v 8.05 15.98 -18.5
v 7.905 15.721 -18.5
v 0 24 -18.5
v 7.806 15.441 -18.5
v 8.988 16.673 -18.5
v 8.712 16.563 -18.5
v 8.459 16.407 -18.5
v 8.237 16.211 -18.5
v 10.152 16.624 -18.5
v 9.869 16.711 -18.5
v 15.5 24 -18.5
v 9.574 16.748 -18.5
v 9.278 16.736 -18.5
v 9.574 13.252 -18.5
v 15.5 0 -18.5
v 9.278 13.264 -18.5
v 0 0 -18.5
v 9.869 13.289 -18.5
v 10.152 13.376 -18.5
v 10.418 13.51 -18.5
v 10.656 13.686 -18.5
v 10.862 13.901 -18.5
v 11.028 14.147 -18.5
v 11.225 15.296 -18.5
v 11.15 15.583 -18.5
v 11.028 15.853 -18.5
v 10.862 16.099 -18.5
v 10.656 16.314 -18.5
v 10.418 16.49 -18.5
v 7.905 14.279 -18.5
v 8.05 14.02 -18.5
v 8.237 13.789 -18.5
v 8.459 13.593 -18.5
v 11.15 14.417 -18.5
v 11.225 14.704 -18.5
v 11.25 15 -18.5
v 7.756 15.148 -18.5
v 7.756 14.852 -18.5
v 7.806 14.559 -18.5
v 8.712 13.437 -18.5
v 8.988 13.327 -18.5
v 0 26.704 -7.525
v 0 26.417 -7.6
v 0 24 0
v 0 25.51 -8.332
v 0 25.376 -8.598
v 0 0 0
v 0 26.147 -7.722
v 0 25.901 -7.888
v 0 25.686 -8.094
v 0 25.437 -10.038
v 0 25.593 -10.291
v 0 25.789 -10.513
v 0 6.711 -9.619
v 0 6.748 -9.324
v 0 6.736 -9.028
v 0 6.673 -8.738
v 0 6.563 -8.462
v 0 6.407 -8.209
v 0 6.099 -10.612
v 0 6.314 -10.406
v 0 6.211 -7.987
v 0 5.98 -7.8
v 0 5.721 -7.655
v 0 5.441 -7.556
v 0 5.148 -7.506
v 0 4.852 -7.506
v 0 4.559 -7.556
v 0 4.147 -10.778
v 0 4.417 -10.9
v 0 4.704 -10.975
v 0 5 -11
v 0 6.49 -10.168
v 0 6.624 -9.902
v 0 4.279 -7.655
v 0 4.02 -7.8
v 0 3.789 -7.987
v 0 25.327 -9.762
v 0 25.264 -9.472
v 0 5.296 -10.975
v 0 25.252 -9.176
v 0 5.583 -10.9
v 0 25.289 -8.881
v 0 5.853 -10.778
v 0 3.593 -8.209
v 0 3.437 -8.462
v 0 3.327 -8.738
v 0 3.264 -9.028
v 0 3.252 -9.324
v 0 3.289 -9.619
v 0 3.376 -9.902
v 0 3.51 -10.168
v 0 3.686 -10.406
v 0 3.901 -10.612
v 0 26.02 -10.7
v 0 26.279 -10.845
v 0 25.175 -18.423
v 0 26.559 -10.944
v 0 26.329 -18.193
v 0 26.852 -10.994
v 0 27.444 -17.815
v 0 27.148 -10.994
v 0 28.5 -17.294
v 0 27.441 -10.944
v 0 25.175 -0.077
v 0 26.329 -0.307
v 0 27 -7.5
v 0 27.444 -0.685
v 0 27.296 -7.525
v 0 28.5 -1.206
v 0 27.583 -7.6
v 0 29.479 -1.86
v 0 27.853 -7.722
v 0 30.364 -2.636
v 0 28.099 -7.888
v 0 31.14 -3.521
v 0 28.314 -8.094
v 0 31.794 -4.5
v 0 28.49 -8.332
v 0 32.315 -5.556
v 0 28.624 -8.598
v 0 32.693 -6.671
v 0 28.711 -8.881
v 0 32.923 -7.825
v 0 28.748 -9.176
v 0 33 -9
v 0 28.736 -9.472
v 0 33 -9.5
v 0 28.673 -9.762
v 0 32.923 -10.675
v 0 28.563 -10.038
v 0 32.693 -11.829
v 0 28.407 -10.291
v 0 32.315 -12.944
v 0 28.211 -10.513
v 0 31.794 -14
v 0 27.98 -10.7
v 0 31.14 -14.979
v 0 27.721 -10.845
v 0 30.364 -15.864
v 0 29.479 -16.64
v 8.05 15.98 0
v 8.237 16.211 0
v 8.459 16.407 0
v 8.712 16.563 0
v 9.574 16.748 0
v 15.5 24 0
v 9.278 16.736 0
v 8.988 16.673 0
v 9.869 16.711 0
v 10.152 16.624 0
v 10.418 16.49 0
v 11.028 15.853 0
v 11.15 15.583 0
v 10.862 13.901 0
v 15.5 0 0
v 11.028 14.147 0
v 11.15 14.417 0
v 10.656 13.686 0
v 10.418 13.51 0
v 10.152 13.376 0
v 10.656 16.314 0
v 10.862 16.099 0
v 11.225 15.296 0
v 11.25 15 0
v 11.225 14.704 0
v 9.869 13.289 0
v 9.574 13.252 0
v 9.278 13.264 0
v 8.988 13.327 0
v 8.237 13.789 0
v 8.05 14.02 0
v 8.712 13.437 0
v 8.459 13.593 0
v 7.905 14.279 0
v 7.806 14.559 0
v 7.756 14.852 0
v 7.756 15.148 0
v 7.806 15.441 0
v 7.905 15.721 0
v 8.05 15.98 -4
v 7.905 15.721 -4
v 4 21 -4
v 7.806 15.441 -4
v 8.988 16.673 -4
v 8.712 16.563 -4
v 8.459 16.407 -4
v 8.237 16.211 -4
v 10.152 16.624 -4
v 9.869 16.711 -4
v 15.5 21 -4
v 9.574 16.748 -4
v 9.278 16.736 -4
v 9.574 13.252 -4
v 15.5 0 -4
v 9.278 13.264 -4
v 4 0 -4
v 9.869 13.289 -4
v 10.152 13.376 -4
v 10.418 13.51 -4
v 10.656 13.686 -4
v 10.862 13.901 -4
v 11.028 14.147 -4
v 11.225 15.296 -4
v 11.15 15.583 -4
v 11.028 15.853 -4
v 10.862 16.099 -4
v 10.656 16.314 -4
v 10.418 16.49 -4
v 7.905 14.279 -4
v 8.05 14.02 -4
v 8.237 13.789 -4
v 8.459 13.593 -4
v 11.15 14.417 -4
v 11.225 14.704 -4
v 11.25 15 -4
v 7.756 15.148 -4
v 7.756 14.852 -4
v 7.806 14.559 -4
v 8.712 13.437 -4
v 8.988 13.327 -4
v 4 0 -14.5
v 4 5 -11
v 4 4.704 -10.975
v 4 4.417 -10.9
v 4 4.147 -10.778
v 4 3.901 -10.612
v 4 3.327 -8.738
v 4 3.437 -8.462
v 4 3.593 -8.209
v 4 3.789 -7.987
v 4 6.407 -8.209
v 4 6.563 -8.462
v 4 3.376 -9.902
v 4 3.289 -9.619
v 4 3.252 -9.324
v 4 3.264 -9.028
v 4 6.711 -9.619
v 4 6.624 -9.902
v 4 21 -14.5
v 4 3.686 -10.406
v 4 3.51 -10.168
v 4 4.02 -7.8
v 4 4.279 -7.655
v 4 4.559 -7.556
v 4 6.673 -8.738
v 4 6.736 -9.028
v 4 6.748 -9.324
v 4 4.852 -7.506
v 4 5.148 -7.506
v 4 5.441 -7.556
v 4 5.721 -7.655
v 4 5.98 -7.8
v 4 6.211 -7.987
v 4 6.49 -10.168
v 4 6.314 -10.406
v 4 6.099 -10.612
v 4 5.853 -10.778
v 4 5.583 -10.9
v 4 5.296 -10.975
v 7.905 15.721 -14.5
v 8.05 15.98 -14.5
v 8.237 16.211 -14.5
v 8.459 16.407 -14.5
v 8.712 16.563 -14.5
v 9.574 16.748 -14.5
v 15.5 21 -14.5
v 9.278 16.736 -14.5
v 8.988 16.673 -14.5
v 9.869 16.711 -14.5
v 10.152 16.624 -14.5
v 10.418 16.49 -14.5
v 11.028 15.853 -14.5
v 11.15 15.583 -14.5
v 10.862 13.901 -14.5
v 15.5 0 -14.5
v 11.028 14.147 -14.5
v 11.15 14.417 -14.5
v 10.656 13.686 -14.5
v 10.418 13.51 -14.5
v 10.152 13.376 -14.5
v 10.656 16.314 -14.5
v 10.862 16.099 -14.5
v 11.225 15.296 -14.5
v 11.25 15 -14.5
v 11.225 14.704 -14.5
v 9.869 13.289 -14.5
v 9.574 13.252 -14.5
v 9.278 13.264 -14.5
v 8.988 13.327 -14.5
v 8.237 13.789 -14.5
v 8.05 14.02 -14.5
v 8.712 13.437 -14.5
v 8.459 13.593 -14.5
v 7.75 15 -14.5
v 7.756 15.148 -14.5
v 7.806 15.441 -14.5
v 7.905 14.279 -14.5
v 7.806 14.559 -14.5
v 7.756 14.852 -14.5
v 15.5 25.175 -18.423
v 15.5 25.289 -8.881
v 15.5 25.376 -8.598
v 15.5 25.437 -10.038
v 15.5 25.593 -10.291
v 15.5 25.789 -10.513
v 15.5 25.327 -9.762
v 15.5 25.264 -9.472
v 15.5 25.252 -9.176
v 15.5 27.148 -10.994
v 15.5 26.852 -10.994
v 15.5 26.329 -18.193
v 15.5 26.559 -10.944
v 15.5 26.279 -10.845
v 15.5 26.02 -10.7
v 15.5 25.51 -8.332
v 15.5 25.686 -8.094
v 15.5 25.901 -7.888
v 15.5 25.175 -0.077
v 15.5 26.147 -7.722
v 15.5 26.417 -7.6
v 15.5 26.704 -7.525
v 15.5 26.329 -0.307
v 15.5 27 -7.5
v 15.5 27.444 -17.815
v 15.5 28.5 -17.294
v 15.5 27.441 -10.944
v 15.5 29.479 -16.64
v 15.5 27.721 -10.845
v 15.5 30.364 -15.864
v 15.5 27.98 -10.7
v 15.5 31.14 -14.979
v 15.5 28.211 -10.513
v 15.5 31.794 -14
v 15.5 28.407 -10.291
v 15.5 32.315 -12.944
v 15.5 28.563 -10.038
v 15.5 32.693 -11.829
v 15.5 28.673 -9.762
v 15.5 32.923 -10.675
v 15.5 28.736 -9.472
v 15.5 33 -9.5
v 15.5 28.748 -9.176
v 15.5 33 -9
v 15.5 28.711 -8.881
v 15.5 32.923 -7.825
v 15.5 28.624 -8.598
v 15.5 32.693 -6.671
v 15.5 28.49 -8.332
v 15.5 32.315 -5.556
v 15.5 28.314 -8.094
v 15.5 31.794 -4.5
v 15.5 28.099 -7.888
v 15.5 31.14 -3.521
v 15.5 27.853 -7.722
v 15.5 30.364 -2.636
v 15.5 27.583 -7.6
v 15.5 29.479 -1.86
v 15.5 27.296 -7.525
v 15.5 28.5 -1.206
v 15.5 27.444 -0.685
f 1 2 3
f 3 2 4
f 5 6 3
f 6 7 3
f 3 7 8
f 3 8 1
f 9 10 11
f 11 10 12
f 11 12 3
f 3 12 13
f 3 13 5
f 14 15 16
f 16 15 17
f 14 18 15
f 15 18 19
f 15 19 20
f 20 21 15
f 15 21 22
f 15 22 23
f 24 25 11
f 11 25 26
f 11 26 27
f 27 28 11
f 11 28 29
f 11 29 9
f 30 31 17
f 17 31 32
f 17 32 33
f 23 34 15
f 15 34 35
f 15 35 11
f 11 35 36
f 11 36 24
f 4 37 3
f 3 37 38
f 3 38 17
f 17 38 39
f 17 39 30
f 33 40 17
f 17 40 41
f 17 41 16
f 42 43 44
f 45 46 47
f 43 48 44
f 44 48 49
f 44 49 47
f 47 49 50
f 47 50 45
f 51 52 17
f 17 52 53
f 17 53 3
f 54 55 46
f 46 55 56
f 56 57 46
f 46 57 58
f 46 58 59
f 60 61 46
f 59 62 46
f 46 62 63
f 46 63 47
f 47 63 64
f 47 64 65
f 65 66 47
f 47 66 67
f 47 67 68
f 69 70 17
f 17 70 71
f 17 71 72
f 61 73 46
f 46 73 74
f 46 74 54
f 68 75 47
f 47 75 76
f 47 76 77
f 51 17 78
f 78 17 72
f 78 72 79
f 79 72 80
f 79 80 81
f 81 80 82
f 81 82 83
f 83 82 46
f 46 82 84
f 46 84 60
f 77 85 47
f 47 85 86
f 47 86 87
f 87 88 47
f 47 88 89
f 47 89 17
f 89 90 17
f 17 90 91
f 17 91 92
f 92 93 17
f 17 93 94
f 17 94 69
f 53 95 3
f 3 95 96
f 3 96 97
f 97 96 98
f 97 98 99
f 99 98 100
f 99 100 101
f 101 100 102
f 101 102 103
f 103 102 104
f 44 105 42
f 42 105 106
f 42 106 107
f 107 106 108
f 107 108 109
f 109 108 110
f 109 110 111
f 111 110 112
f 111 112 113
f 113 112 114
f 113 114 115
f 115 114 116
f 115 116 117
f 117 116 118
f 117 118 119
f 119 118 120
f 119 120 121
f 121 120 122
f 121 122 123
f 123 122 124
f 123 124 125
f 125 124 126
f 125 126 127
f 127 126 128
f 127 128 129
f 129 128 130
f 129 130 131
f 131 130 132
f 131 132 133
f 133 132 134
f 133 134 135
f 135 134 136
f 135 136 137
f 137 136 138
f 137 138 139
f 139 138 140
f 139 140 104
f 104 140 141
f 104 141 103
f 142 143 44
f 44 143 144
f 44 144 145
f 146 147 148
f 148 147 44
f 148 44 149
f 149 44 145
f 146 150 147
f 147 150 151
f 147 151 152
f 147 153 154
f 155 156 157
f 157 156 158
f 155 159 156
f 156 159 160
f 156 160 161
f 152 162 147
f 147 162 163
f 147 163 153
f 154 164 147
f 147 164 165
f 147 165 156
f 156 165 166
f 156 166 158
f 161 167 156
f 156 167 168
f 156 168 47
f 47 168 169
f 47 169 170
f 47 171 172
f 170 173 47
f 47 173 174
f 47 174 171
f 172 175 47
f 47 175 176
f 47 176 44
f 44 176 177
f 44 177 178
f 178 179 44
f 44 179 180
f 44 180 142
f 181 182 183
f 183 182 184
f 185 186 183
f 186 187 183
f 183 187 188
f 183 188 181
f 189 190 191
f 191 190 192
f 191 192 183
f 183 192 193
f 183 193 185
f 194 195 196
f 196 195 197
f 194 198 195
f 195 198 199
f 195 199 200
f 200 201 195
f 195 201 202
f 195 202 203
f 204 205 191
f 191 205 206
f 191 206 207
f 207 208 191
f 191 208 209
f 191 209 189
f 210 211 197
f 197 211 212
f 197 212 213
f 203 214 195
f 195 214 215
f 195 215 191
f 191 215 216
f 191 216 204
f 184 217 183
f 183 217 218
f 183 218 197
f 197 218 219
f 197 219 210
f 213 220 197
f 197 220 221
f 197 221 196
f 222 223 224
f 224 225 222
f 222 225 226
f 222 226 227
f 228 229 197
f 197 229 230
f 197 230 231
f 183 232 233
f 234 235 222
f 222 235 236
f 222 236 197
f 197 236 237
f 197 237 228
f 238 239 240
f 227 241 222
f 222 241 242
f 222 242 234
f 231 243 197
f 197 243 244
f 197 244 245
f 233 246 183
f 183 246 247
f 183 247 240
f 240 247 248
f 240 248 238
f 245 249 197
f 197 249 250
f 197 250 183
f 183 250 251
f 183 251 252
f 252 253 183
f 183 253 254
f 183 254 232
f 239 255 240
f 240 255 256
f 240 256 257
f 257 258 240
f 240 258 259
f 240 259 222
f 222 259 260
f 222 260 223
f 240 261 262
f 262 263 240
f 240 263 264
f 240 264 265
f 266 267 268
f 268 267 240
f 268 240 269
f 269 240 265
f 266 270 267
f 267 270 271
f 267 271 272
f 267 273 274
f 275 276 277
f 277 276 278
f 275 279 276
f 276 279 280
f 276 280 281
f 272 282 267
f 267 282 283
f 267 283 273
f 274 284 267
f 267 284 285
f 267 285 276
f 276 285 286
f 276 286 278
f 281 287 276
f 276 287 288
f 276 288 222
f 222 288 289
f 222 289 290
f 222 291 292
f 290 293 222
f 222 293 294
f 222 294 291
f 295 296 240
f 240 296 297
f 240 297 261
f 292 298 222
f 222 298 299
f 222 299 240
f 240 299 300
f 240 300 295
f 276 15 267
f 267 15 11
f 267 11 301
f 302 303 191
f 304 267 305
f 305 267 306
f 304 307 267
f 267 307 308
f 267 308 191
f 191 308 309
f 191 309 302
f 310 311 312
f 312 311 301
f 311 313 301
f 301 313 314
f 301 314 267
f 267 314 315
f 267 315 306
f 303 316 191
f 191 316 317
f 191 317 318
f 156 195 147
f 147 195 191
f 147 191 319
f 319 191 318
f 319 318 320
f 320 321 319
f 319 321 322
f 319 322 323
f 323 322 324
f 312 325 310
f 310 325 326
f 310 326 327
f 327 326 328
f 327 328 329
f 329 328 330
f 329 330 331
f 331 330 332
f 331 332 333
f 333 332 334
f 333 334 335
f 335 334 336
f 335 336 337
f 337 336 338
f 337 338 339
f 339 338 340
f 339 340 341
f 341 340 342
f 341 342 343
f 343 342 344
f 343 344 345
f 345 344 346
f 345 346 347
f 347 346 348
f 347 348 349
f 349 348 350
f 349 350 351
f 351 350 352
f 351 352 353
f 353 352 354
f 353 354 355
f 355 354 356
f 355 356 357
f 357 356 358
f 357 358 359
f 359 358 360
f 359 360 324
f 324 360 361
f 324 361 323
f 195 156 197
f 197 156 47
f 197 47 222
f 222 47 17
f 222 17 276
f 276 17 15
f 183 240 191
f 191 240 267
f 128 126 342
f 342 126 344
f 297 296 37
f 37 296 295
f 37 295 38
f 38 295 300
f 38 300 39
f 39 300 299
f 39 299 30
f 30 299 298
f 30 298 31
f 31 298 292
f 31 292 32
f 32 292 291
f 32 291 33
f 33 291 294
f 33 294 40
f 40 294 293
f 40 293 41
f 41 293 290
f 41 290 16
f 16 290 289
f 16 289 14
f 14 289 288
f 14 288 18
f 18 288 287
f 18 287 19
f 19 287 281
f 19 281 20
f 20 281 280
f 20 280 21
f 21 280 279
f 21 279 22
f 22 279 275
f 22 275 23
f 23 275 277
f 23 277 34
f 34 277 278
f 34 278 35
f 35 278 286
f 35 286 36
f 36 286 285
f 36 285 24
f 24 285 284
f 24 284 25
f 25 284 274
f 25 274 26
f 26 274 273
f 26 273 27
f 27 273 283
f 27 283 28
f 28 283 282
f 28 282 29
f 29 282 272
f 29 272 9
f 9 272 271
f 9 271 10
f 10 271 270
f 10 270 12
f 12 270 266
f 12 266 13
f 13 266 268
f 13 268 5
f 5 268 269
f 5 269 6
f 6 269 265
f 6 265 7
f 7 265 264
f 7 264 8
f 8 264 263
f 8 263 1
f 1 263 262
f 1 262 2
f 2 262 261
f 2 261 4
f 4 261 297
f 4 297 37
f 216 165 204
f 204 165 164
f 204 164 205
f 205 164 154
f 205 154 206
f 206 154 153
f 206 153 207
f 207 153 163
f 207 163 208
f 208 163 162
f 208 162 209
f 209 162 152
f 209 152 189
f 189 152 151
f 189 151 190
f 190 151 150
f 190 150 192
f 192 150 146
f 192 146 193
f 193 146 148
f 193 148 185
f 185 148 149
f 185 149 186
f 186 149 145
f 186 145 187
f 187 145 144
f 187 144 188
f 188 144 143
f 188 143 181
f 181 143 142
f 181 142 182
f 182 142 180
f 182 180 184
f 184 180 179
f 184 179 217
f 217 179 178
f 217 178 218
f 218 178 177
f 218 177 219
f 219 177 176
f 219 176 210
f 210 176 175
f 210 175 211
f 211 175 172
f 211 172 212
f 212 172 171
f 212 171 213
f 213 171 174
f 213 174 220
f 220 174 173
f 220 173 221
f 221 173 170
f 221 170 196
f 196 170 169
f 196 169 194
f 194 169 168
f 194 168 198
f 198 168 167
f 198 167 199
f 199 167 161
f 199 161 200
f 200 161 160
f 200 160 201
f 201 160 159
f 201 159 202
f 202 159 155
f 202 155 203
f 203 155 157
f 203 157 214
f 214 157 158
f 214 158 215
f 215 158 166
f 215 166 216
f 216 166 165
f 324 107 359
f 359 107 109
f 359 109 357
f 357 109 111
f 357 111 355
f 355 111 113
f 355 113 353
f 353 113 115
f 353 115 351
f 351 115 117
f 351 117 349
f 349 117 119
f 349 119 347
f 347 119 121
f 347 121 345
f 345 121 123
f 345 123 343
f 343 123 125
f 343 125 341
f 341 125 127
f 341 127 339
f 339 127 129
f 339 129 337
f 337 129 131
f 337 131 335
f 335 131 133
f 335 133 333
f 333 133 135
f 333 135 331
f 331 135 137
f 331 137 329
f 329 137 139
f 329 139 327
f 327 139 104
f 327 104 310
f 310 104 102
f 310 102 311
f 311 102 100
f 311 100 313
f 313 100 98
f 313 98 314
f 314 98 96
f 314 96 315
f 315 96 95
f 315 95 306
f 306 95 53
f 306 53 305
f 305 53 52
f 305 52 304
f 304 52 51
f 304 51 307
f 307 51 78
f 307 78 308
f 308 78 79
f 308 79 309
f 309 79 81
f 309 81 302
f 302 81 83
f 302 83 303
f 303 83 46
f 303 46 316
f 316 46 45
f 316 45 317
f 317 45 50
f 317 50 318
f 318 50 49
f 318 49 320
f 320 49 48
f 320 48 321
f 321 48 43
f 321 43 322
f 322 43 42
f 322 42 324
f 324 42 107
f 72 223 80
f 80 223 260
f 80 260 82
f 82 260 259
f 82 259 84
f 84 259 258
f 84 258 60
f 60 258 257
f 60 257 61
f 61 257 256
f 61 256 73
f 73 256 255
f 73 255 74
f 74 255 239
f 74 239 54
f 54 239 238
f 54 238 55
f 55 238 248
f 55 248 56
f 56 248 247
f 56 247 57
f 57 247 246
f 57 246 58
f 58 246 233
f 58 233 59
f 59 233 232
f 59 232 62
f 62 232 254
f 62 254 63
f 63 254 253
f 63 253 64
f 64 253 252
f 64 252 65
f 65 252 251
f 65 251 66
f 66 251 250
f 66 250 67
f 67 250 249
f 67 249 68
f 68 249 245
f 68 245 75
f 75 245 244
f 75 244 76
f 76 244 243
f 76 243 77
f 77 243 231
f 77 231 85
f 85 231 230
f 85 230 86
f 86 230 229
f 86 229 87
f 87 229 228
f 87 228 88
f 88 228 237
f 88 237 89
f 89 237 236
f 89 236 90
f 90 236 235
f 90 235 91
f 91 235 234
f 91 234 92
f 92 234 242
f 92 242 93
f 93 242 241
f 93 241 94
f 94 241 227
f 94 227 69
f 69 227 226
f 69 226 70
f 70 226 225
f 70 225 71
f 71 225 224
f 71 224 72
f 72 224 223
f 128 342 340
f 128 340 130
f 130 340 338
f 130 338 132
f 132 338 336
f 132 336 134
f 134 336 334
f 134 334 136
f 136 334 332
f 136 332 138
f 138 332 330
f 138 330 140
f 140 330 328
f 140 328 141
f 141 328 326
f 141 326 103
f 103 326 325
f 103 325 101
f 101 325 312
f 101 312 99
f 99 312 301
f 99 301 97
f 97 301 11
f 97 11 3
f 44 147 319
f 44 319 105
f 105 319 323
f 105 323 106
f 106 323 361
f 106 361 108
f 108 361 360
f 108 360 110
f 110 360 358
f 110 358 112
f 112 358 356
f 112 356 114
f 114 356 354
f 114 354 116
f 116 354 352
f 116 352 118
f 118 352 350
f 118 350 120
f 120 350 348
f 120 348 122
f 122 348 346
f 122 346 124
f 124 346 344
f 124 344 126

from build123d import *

# Parameters (mm, degrees)
EXTRUDE_1_DEPTH     = 21
SKETCH_2_W          = 15.5
SKETCH_2_H          = 12
EXTRUDE_2_DEPTH     = 18.5
SKETCH_4_R          = 1.75
CUT_EXTRUDE_2_DEPTH = 41.883982194
SKETCH_5_R          = 1.75
CUT_EXTRUDE_3_DEPTH = 41.883982194
SKETCH_6_R          = 1.75
CUT_EXTRUDE_4_DEPTH = 40.54111784
FILLET_1_R          = 9


with BuildPart() as part:
    # ｽｹｯﾁ1 → ﾎﾞｽ - 押し出し1 (new body)
    with BuildSketch(Plane(origin=(0, 0, 0), x_dir=(1, 0, 0), z_dir=(0, 1, 0))):
        Polygon((0, 18.5), (0, 0), (15.5, 0), (15.5, 4), (4, 4), (4, 14.5), (15.5, 14.5), (15.5, 18.5), align=None)
    extrude(amount=EXTRUDE_1_DEPTH)

    # ｽｹｯﾁ2 → ﾎﾞｽ - 押し出し2 (add)
    with BuildSketch(Plane.XY):
        with Locations((7.75, 27)):
            Rectangle(SKETCH_2_W, SKETCH_2_H)
    extrude(amount=-EXTRUDE_2_DEPTH)

    # ｽｹｯﾁ4 → ｶｯﾄ - 押し出し2 (cut, through all)
    with BuildSketch(Plane.XY):
        with Locations((9.5, 15)):
            Circle(SKETCH_4_R)
    extrude(amount=-CUT_EXTRUDE_2_DEPTH, mode=Mode.SUBTRACT)

    # ｽｹｯﾁ5 → ｶｯﾄ - 押し出し3 (cut, through all)
    with BuildSketch(Plane.ZY):
        with Locations((-9.25, 27)):
            Circle(SKETCH_5_R)
    extrude(amount=-CUT_EXTRUDE_3_DEPTH, mode=Mode.SUBTRACT)

    # ｽｹｯﾁ6 → ｶｯﾄ - 押し出し4 (cut, through all)
    with BuildSketch(Plane(origin=(4, 0, 0), x_dir=(0, 0, -1), z_dir=(1, 0, 0))):
        with Locations((9.25, 5)):
            Circle(SKETCH_6_R)
    extrude(amount=-CUT_EXTRUDE_4_DEPTH, mode=Mode.SUBTRACT)

    # ﾌｨﾚｯﾄ1
    fillet_1_edges = [part.edges().sort_by_distance(p)[0] for p in [
        (7.75, 33, -18.5),
        (7.75, 33, 0),
    ]]
    fillet(fillet_1_edges, radius=FILLET_1_R)


solid = part.part
